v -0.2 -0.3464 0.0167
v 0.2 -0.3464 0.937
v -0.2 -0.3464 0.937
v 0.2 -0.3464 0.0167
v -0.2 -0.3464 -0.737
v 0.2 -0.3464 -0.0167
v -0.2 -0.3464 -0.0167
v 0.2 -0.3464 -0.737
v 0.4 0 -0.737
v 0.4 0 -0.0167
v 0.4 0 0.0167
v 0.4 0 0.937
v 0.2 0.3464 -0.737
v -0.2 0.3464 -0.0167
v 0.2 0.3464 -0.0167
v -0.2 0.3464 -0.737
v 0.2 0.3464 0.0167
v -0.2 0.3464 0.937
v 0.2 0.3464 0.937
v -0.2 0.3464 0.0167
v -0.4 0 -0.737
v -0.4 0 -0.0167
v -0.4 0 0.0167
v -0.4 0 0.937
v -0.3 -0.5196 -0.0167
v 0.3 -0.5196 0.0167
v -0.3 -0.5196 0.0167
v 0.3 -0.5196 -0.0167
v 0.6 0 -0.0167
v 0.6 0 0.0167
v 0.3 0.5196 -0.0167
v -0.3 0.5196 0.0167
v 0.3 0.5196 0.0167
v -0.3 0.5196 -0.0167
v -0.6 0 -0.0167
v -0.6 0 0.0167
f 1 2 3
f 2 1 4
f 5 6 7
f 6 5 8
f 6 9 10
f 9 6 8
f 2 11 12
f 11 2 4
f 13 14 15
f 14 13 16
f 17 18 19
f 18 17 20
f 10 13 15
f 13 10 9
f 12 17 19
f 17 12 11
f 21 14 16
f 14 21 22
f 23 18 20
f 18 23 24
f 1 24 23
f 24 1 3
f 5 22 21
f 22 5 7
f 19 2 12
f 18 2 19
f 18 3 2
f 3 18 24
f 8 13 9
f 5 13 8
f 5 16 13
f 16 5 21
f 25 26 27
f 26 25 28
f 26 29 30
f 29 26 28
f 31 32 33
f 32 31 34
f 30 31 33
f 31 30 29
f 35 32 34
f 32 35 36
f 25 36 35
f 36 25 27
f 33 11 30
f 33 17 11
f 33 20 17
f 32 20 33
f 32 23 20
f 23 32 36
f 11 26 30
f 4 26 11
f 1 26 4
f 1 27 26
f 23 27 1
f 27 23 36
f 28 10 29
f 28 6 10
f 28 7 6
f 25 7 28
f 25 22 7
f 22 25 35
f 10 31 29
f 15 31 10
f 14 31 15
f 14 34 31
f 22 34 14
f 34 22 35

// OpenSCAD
// file: hexagon.scad
module hexagon_tile(R, H=0.03, R_side_grip=0.015, h_side_grip=0.03, h_center_grip=0, r_center_grip=0){
//translate([0,sin(60)*R+h_side_grip/2,0])    
// sin(60)*R+0.05/2 em y
union(){
//difference(){    
cylinder(h = H, r1 = R, r2 = R, center = true, $fn=6);
//translate([0,0,-H/2])
//cylinder(h = H, r1 = R-0.05, r2 = R-0.05, center = true, $fn=6);
//}
for (i = [1:6]){
    rotate([0,0,(i-1)*60])
    translate([0,cos(30)*R+h_side_grip/2,0])
    rotate([90,0,0])
    cylinder(h = h_side_grip, r1 = 0.8*R_side_grip, r2 = R_side_grip, center = true, $fn=4); 
}
translate([0,0,-(h_center_grip+H)/2])
cylinder(h = h_center_grip, r1 = r_center_grip, r2 = r_center_grip, center = true, $fn=6); 
}
}

hexagon_tile(R=1);
// file: solar_panel.scad
module solar_panel(sl=0.25, sw=0.15, sh=0.01, conl=0.1, conh=0.01, hubcl=0.05, hubcw=0.05, hubch=0.01, N=4){
ssep = 0.01;
sep = 0.01;

//cl = (sl-(Nl+1)*sep)/Nl;
//cw = (sw-(Nw+1)*sep)/Nw;
//ch = sh*1.1;

translate([0,hubcw/2,0])
  union(){
    cube([hubcl,hubcw,hubch],center=true);
  translate([-sl/2,0,-sh/2]){
    translate([sl*0.2, 0, -(conh-sh)/2])
      cube([conl,(sw+ssep)*N-ssep,conh]);
    translate([sl*0.8-conl, 0, -(conh-sh)/2])
      cube([conl,(sw+ssep)*N-ssep,conh]);
    for(i=[0:N-1]){
      translate([0, (sw+ssep)*i, 0]){
        cube([sl,sw,sh]);
//        translate([sep, sep, 0])
//          for(i=[0:2])
//            for(j=[0:1])
//              translate([i*(cl+sep), j*(cw+sep), 0])
//                cube([cl,cw,ch]);
        }
    }
  }
  }
}
//rotate([90,0,0])
   color([0.3,0.3,1]) solar_panel(sl=0.6, sw=0.35, sh=0.01, conl=0.01, conh=0.005, hubcl=0.02, hubcw=0.06, hubch=0.008, N=4);
// file: hexagon_mirror.scad
module hexagon_mirror(r_hex, h_hex, th){    
    r = r_hex*0.99;
    lh = r_hex - r;
    h = h_hex - 4*lh;
    
  difference(){
    cylinder(h = h, r1 = r, r2 = r, center = true, $fn=6);
    translate([0,0,h/2])
        cylinder(h = h-th/2, r1 = r-th, r2 = r-th, center = true, $fn=6);
  }
    translate([0,0,-h/2])
        rotate([180,0,0])
            cylinder(h = 4*lh, r1 = 5*lh, r2 = 4*lh, center = true, $fn=6);
}

h_hex=0.05;
th=0.025;
translate([0,0,h_hex/2])
    hexagon_mirror(r_hex=0.5, h_hex=h_hex, th=0.025);
// main file
use <hexagon_mirror.scad>
use <solar_panel.scad>
use <hexagon.scad>

R_side_grip = 0.015;
h_side_grip = 0.01;

module target(R_hub = 0.25, H_hub = 1){
//hexagon_mirror(R=0.5, h_center_grip=0.25, r_center_grip=0.3,R_side_grip = 0.015,h_side_grip = 0.01);

translate([0, 0, -H_hub/2])
cylinder(h = H_hub, r1 = R_hub, r2 = R_hub, center = true, $fn=6);

translate([0, 0, -H_hub/2-0.1])
cylinder(h = 0.02*H_hub, r1 = 1.5*R_hub, r2 = 1.5*R_hub, center = true, $fn=6);
//
//for(i=[1:3])
//    rotate([0,0,(i-1)*120])
//        translate([0,R_hub*cos(30),-H_hub+0.05])
//            rotate([0, 180, 0])
//        solar_panel(sl=0.6, sw=0.35, sh=0.01, conl=0.01, conh=0.005, hubcl=0.02, hubcw=0.06, hubch=0.008, Nl=3, Nw=2);
}

module chaser(w_hub, h_hub, l_hub){
translate([0, 0, -l_hub/2])
//    difference(){
        cube([w_hub, h_hub, l_hub], center=true);
//        translate([-0.1, 0, -0.3])
//            cube([1.1*w_hub, 0.9*h_hub, 0.3*l_hub], center=true);
//    }
//    
//for(i=[1:2])
//    rotate([0,0,(i-1)*180])
//        translate([0,h_hub/2,-l_hub+0.3])
//            rotate([0, 90, 0])
//        solar_panel(sl=0.4, sw=0.3, sh=0.01, conl=0.01, conh=0.005, hubcl=0.02, hubcw=0.06, hubch=0.008, Nl=3, Nw=2);

l_hub_back = 0.05;
translate([0.2*w_hub, 0, -l_hub-l_hub_back/2])
cube([1*w_hub, h_hub, l_hub_back], center=true);
translate([0.65*w_hub, 0, -l_hub+l_hub_back/2-w_hub])
cube([0.15*w_hub, h_hub, l_hub_back], center=true);
rotate([0,90,0])
translate([+w_hub/2+l_hub,0,0.7*w_hub])
cube([1*w_hub, h_hub, l_hub_back], center=true);

for (i = [1:1]){
        translate([0.032, 0, -l_hub_chaser-0.1-(i-1)*0.1])
        rotate([0,0,30])
        hexagon_tile(H=0.03, R=0.5,R_side_grip = 0.015,
h_side_grip = 0.01);
        }
        
for (i = [1:7]){       
        translate([0.5, 0, -l_hub_chaser-0.1-(i-1)*0.07])
        rotate([0,90,0])
        cylinder(h = 0.05, r1 = 0.01, r2 = 0.01, center = true, $fn=12);
        }
}

l_hub_chaser=0.950;
R_target = 0.4;
H_target = 1.8740-0.2;
translate([0, 0, (H_target)/2+0.1])
target(R_hub=R_target, H_hub=H_target);

rotate([0,0,60])
translate([0, 0.4+cos(30)*R_target, -H_target*0.5])
    rotate([90,90,0]) {
    //rotate([0,90,0]) 
    //translate([0,0,l_hub_chaser/2])
//        chaser(w_hub = 0.794, h_hub = 0.970, l_hub=l_hub_chaser);      
}
